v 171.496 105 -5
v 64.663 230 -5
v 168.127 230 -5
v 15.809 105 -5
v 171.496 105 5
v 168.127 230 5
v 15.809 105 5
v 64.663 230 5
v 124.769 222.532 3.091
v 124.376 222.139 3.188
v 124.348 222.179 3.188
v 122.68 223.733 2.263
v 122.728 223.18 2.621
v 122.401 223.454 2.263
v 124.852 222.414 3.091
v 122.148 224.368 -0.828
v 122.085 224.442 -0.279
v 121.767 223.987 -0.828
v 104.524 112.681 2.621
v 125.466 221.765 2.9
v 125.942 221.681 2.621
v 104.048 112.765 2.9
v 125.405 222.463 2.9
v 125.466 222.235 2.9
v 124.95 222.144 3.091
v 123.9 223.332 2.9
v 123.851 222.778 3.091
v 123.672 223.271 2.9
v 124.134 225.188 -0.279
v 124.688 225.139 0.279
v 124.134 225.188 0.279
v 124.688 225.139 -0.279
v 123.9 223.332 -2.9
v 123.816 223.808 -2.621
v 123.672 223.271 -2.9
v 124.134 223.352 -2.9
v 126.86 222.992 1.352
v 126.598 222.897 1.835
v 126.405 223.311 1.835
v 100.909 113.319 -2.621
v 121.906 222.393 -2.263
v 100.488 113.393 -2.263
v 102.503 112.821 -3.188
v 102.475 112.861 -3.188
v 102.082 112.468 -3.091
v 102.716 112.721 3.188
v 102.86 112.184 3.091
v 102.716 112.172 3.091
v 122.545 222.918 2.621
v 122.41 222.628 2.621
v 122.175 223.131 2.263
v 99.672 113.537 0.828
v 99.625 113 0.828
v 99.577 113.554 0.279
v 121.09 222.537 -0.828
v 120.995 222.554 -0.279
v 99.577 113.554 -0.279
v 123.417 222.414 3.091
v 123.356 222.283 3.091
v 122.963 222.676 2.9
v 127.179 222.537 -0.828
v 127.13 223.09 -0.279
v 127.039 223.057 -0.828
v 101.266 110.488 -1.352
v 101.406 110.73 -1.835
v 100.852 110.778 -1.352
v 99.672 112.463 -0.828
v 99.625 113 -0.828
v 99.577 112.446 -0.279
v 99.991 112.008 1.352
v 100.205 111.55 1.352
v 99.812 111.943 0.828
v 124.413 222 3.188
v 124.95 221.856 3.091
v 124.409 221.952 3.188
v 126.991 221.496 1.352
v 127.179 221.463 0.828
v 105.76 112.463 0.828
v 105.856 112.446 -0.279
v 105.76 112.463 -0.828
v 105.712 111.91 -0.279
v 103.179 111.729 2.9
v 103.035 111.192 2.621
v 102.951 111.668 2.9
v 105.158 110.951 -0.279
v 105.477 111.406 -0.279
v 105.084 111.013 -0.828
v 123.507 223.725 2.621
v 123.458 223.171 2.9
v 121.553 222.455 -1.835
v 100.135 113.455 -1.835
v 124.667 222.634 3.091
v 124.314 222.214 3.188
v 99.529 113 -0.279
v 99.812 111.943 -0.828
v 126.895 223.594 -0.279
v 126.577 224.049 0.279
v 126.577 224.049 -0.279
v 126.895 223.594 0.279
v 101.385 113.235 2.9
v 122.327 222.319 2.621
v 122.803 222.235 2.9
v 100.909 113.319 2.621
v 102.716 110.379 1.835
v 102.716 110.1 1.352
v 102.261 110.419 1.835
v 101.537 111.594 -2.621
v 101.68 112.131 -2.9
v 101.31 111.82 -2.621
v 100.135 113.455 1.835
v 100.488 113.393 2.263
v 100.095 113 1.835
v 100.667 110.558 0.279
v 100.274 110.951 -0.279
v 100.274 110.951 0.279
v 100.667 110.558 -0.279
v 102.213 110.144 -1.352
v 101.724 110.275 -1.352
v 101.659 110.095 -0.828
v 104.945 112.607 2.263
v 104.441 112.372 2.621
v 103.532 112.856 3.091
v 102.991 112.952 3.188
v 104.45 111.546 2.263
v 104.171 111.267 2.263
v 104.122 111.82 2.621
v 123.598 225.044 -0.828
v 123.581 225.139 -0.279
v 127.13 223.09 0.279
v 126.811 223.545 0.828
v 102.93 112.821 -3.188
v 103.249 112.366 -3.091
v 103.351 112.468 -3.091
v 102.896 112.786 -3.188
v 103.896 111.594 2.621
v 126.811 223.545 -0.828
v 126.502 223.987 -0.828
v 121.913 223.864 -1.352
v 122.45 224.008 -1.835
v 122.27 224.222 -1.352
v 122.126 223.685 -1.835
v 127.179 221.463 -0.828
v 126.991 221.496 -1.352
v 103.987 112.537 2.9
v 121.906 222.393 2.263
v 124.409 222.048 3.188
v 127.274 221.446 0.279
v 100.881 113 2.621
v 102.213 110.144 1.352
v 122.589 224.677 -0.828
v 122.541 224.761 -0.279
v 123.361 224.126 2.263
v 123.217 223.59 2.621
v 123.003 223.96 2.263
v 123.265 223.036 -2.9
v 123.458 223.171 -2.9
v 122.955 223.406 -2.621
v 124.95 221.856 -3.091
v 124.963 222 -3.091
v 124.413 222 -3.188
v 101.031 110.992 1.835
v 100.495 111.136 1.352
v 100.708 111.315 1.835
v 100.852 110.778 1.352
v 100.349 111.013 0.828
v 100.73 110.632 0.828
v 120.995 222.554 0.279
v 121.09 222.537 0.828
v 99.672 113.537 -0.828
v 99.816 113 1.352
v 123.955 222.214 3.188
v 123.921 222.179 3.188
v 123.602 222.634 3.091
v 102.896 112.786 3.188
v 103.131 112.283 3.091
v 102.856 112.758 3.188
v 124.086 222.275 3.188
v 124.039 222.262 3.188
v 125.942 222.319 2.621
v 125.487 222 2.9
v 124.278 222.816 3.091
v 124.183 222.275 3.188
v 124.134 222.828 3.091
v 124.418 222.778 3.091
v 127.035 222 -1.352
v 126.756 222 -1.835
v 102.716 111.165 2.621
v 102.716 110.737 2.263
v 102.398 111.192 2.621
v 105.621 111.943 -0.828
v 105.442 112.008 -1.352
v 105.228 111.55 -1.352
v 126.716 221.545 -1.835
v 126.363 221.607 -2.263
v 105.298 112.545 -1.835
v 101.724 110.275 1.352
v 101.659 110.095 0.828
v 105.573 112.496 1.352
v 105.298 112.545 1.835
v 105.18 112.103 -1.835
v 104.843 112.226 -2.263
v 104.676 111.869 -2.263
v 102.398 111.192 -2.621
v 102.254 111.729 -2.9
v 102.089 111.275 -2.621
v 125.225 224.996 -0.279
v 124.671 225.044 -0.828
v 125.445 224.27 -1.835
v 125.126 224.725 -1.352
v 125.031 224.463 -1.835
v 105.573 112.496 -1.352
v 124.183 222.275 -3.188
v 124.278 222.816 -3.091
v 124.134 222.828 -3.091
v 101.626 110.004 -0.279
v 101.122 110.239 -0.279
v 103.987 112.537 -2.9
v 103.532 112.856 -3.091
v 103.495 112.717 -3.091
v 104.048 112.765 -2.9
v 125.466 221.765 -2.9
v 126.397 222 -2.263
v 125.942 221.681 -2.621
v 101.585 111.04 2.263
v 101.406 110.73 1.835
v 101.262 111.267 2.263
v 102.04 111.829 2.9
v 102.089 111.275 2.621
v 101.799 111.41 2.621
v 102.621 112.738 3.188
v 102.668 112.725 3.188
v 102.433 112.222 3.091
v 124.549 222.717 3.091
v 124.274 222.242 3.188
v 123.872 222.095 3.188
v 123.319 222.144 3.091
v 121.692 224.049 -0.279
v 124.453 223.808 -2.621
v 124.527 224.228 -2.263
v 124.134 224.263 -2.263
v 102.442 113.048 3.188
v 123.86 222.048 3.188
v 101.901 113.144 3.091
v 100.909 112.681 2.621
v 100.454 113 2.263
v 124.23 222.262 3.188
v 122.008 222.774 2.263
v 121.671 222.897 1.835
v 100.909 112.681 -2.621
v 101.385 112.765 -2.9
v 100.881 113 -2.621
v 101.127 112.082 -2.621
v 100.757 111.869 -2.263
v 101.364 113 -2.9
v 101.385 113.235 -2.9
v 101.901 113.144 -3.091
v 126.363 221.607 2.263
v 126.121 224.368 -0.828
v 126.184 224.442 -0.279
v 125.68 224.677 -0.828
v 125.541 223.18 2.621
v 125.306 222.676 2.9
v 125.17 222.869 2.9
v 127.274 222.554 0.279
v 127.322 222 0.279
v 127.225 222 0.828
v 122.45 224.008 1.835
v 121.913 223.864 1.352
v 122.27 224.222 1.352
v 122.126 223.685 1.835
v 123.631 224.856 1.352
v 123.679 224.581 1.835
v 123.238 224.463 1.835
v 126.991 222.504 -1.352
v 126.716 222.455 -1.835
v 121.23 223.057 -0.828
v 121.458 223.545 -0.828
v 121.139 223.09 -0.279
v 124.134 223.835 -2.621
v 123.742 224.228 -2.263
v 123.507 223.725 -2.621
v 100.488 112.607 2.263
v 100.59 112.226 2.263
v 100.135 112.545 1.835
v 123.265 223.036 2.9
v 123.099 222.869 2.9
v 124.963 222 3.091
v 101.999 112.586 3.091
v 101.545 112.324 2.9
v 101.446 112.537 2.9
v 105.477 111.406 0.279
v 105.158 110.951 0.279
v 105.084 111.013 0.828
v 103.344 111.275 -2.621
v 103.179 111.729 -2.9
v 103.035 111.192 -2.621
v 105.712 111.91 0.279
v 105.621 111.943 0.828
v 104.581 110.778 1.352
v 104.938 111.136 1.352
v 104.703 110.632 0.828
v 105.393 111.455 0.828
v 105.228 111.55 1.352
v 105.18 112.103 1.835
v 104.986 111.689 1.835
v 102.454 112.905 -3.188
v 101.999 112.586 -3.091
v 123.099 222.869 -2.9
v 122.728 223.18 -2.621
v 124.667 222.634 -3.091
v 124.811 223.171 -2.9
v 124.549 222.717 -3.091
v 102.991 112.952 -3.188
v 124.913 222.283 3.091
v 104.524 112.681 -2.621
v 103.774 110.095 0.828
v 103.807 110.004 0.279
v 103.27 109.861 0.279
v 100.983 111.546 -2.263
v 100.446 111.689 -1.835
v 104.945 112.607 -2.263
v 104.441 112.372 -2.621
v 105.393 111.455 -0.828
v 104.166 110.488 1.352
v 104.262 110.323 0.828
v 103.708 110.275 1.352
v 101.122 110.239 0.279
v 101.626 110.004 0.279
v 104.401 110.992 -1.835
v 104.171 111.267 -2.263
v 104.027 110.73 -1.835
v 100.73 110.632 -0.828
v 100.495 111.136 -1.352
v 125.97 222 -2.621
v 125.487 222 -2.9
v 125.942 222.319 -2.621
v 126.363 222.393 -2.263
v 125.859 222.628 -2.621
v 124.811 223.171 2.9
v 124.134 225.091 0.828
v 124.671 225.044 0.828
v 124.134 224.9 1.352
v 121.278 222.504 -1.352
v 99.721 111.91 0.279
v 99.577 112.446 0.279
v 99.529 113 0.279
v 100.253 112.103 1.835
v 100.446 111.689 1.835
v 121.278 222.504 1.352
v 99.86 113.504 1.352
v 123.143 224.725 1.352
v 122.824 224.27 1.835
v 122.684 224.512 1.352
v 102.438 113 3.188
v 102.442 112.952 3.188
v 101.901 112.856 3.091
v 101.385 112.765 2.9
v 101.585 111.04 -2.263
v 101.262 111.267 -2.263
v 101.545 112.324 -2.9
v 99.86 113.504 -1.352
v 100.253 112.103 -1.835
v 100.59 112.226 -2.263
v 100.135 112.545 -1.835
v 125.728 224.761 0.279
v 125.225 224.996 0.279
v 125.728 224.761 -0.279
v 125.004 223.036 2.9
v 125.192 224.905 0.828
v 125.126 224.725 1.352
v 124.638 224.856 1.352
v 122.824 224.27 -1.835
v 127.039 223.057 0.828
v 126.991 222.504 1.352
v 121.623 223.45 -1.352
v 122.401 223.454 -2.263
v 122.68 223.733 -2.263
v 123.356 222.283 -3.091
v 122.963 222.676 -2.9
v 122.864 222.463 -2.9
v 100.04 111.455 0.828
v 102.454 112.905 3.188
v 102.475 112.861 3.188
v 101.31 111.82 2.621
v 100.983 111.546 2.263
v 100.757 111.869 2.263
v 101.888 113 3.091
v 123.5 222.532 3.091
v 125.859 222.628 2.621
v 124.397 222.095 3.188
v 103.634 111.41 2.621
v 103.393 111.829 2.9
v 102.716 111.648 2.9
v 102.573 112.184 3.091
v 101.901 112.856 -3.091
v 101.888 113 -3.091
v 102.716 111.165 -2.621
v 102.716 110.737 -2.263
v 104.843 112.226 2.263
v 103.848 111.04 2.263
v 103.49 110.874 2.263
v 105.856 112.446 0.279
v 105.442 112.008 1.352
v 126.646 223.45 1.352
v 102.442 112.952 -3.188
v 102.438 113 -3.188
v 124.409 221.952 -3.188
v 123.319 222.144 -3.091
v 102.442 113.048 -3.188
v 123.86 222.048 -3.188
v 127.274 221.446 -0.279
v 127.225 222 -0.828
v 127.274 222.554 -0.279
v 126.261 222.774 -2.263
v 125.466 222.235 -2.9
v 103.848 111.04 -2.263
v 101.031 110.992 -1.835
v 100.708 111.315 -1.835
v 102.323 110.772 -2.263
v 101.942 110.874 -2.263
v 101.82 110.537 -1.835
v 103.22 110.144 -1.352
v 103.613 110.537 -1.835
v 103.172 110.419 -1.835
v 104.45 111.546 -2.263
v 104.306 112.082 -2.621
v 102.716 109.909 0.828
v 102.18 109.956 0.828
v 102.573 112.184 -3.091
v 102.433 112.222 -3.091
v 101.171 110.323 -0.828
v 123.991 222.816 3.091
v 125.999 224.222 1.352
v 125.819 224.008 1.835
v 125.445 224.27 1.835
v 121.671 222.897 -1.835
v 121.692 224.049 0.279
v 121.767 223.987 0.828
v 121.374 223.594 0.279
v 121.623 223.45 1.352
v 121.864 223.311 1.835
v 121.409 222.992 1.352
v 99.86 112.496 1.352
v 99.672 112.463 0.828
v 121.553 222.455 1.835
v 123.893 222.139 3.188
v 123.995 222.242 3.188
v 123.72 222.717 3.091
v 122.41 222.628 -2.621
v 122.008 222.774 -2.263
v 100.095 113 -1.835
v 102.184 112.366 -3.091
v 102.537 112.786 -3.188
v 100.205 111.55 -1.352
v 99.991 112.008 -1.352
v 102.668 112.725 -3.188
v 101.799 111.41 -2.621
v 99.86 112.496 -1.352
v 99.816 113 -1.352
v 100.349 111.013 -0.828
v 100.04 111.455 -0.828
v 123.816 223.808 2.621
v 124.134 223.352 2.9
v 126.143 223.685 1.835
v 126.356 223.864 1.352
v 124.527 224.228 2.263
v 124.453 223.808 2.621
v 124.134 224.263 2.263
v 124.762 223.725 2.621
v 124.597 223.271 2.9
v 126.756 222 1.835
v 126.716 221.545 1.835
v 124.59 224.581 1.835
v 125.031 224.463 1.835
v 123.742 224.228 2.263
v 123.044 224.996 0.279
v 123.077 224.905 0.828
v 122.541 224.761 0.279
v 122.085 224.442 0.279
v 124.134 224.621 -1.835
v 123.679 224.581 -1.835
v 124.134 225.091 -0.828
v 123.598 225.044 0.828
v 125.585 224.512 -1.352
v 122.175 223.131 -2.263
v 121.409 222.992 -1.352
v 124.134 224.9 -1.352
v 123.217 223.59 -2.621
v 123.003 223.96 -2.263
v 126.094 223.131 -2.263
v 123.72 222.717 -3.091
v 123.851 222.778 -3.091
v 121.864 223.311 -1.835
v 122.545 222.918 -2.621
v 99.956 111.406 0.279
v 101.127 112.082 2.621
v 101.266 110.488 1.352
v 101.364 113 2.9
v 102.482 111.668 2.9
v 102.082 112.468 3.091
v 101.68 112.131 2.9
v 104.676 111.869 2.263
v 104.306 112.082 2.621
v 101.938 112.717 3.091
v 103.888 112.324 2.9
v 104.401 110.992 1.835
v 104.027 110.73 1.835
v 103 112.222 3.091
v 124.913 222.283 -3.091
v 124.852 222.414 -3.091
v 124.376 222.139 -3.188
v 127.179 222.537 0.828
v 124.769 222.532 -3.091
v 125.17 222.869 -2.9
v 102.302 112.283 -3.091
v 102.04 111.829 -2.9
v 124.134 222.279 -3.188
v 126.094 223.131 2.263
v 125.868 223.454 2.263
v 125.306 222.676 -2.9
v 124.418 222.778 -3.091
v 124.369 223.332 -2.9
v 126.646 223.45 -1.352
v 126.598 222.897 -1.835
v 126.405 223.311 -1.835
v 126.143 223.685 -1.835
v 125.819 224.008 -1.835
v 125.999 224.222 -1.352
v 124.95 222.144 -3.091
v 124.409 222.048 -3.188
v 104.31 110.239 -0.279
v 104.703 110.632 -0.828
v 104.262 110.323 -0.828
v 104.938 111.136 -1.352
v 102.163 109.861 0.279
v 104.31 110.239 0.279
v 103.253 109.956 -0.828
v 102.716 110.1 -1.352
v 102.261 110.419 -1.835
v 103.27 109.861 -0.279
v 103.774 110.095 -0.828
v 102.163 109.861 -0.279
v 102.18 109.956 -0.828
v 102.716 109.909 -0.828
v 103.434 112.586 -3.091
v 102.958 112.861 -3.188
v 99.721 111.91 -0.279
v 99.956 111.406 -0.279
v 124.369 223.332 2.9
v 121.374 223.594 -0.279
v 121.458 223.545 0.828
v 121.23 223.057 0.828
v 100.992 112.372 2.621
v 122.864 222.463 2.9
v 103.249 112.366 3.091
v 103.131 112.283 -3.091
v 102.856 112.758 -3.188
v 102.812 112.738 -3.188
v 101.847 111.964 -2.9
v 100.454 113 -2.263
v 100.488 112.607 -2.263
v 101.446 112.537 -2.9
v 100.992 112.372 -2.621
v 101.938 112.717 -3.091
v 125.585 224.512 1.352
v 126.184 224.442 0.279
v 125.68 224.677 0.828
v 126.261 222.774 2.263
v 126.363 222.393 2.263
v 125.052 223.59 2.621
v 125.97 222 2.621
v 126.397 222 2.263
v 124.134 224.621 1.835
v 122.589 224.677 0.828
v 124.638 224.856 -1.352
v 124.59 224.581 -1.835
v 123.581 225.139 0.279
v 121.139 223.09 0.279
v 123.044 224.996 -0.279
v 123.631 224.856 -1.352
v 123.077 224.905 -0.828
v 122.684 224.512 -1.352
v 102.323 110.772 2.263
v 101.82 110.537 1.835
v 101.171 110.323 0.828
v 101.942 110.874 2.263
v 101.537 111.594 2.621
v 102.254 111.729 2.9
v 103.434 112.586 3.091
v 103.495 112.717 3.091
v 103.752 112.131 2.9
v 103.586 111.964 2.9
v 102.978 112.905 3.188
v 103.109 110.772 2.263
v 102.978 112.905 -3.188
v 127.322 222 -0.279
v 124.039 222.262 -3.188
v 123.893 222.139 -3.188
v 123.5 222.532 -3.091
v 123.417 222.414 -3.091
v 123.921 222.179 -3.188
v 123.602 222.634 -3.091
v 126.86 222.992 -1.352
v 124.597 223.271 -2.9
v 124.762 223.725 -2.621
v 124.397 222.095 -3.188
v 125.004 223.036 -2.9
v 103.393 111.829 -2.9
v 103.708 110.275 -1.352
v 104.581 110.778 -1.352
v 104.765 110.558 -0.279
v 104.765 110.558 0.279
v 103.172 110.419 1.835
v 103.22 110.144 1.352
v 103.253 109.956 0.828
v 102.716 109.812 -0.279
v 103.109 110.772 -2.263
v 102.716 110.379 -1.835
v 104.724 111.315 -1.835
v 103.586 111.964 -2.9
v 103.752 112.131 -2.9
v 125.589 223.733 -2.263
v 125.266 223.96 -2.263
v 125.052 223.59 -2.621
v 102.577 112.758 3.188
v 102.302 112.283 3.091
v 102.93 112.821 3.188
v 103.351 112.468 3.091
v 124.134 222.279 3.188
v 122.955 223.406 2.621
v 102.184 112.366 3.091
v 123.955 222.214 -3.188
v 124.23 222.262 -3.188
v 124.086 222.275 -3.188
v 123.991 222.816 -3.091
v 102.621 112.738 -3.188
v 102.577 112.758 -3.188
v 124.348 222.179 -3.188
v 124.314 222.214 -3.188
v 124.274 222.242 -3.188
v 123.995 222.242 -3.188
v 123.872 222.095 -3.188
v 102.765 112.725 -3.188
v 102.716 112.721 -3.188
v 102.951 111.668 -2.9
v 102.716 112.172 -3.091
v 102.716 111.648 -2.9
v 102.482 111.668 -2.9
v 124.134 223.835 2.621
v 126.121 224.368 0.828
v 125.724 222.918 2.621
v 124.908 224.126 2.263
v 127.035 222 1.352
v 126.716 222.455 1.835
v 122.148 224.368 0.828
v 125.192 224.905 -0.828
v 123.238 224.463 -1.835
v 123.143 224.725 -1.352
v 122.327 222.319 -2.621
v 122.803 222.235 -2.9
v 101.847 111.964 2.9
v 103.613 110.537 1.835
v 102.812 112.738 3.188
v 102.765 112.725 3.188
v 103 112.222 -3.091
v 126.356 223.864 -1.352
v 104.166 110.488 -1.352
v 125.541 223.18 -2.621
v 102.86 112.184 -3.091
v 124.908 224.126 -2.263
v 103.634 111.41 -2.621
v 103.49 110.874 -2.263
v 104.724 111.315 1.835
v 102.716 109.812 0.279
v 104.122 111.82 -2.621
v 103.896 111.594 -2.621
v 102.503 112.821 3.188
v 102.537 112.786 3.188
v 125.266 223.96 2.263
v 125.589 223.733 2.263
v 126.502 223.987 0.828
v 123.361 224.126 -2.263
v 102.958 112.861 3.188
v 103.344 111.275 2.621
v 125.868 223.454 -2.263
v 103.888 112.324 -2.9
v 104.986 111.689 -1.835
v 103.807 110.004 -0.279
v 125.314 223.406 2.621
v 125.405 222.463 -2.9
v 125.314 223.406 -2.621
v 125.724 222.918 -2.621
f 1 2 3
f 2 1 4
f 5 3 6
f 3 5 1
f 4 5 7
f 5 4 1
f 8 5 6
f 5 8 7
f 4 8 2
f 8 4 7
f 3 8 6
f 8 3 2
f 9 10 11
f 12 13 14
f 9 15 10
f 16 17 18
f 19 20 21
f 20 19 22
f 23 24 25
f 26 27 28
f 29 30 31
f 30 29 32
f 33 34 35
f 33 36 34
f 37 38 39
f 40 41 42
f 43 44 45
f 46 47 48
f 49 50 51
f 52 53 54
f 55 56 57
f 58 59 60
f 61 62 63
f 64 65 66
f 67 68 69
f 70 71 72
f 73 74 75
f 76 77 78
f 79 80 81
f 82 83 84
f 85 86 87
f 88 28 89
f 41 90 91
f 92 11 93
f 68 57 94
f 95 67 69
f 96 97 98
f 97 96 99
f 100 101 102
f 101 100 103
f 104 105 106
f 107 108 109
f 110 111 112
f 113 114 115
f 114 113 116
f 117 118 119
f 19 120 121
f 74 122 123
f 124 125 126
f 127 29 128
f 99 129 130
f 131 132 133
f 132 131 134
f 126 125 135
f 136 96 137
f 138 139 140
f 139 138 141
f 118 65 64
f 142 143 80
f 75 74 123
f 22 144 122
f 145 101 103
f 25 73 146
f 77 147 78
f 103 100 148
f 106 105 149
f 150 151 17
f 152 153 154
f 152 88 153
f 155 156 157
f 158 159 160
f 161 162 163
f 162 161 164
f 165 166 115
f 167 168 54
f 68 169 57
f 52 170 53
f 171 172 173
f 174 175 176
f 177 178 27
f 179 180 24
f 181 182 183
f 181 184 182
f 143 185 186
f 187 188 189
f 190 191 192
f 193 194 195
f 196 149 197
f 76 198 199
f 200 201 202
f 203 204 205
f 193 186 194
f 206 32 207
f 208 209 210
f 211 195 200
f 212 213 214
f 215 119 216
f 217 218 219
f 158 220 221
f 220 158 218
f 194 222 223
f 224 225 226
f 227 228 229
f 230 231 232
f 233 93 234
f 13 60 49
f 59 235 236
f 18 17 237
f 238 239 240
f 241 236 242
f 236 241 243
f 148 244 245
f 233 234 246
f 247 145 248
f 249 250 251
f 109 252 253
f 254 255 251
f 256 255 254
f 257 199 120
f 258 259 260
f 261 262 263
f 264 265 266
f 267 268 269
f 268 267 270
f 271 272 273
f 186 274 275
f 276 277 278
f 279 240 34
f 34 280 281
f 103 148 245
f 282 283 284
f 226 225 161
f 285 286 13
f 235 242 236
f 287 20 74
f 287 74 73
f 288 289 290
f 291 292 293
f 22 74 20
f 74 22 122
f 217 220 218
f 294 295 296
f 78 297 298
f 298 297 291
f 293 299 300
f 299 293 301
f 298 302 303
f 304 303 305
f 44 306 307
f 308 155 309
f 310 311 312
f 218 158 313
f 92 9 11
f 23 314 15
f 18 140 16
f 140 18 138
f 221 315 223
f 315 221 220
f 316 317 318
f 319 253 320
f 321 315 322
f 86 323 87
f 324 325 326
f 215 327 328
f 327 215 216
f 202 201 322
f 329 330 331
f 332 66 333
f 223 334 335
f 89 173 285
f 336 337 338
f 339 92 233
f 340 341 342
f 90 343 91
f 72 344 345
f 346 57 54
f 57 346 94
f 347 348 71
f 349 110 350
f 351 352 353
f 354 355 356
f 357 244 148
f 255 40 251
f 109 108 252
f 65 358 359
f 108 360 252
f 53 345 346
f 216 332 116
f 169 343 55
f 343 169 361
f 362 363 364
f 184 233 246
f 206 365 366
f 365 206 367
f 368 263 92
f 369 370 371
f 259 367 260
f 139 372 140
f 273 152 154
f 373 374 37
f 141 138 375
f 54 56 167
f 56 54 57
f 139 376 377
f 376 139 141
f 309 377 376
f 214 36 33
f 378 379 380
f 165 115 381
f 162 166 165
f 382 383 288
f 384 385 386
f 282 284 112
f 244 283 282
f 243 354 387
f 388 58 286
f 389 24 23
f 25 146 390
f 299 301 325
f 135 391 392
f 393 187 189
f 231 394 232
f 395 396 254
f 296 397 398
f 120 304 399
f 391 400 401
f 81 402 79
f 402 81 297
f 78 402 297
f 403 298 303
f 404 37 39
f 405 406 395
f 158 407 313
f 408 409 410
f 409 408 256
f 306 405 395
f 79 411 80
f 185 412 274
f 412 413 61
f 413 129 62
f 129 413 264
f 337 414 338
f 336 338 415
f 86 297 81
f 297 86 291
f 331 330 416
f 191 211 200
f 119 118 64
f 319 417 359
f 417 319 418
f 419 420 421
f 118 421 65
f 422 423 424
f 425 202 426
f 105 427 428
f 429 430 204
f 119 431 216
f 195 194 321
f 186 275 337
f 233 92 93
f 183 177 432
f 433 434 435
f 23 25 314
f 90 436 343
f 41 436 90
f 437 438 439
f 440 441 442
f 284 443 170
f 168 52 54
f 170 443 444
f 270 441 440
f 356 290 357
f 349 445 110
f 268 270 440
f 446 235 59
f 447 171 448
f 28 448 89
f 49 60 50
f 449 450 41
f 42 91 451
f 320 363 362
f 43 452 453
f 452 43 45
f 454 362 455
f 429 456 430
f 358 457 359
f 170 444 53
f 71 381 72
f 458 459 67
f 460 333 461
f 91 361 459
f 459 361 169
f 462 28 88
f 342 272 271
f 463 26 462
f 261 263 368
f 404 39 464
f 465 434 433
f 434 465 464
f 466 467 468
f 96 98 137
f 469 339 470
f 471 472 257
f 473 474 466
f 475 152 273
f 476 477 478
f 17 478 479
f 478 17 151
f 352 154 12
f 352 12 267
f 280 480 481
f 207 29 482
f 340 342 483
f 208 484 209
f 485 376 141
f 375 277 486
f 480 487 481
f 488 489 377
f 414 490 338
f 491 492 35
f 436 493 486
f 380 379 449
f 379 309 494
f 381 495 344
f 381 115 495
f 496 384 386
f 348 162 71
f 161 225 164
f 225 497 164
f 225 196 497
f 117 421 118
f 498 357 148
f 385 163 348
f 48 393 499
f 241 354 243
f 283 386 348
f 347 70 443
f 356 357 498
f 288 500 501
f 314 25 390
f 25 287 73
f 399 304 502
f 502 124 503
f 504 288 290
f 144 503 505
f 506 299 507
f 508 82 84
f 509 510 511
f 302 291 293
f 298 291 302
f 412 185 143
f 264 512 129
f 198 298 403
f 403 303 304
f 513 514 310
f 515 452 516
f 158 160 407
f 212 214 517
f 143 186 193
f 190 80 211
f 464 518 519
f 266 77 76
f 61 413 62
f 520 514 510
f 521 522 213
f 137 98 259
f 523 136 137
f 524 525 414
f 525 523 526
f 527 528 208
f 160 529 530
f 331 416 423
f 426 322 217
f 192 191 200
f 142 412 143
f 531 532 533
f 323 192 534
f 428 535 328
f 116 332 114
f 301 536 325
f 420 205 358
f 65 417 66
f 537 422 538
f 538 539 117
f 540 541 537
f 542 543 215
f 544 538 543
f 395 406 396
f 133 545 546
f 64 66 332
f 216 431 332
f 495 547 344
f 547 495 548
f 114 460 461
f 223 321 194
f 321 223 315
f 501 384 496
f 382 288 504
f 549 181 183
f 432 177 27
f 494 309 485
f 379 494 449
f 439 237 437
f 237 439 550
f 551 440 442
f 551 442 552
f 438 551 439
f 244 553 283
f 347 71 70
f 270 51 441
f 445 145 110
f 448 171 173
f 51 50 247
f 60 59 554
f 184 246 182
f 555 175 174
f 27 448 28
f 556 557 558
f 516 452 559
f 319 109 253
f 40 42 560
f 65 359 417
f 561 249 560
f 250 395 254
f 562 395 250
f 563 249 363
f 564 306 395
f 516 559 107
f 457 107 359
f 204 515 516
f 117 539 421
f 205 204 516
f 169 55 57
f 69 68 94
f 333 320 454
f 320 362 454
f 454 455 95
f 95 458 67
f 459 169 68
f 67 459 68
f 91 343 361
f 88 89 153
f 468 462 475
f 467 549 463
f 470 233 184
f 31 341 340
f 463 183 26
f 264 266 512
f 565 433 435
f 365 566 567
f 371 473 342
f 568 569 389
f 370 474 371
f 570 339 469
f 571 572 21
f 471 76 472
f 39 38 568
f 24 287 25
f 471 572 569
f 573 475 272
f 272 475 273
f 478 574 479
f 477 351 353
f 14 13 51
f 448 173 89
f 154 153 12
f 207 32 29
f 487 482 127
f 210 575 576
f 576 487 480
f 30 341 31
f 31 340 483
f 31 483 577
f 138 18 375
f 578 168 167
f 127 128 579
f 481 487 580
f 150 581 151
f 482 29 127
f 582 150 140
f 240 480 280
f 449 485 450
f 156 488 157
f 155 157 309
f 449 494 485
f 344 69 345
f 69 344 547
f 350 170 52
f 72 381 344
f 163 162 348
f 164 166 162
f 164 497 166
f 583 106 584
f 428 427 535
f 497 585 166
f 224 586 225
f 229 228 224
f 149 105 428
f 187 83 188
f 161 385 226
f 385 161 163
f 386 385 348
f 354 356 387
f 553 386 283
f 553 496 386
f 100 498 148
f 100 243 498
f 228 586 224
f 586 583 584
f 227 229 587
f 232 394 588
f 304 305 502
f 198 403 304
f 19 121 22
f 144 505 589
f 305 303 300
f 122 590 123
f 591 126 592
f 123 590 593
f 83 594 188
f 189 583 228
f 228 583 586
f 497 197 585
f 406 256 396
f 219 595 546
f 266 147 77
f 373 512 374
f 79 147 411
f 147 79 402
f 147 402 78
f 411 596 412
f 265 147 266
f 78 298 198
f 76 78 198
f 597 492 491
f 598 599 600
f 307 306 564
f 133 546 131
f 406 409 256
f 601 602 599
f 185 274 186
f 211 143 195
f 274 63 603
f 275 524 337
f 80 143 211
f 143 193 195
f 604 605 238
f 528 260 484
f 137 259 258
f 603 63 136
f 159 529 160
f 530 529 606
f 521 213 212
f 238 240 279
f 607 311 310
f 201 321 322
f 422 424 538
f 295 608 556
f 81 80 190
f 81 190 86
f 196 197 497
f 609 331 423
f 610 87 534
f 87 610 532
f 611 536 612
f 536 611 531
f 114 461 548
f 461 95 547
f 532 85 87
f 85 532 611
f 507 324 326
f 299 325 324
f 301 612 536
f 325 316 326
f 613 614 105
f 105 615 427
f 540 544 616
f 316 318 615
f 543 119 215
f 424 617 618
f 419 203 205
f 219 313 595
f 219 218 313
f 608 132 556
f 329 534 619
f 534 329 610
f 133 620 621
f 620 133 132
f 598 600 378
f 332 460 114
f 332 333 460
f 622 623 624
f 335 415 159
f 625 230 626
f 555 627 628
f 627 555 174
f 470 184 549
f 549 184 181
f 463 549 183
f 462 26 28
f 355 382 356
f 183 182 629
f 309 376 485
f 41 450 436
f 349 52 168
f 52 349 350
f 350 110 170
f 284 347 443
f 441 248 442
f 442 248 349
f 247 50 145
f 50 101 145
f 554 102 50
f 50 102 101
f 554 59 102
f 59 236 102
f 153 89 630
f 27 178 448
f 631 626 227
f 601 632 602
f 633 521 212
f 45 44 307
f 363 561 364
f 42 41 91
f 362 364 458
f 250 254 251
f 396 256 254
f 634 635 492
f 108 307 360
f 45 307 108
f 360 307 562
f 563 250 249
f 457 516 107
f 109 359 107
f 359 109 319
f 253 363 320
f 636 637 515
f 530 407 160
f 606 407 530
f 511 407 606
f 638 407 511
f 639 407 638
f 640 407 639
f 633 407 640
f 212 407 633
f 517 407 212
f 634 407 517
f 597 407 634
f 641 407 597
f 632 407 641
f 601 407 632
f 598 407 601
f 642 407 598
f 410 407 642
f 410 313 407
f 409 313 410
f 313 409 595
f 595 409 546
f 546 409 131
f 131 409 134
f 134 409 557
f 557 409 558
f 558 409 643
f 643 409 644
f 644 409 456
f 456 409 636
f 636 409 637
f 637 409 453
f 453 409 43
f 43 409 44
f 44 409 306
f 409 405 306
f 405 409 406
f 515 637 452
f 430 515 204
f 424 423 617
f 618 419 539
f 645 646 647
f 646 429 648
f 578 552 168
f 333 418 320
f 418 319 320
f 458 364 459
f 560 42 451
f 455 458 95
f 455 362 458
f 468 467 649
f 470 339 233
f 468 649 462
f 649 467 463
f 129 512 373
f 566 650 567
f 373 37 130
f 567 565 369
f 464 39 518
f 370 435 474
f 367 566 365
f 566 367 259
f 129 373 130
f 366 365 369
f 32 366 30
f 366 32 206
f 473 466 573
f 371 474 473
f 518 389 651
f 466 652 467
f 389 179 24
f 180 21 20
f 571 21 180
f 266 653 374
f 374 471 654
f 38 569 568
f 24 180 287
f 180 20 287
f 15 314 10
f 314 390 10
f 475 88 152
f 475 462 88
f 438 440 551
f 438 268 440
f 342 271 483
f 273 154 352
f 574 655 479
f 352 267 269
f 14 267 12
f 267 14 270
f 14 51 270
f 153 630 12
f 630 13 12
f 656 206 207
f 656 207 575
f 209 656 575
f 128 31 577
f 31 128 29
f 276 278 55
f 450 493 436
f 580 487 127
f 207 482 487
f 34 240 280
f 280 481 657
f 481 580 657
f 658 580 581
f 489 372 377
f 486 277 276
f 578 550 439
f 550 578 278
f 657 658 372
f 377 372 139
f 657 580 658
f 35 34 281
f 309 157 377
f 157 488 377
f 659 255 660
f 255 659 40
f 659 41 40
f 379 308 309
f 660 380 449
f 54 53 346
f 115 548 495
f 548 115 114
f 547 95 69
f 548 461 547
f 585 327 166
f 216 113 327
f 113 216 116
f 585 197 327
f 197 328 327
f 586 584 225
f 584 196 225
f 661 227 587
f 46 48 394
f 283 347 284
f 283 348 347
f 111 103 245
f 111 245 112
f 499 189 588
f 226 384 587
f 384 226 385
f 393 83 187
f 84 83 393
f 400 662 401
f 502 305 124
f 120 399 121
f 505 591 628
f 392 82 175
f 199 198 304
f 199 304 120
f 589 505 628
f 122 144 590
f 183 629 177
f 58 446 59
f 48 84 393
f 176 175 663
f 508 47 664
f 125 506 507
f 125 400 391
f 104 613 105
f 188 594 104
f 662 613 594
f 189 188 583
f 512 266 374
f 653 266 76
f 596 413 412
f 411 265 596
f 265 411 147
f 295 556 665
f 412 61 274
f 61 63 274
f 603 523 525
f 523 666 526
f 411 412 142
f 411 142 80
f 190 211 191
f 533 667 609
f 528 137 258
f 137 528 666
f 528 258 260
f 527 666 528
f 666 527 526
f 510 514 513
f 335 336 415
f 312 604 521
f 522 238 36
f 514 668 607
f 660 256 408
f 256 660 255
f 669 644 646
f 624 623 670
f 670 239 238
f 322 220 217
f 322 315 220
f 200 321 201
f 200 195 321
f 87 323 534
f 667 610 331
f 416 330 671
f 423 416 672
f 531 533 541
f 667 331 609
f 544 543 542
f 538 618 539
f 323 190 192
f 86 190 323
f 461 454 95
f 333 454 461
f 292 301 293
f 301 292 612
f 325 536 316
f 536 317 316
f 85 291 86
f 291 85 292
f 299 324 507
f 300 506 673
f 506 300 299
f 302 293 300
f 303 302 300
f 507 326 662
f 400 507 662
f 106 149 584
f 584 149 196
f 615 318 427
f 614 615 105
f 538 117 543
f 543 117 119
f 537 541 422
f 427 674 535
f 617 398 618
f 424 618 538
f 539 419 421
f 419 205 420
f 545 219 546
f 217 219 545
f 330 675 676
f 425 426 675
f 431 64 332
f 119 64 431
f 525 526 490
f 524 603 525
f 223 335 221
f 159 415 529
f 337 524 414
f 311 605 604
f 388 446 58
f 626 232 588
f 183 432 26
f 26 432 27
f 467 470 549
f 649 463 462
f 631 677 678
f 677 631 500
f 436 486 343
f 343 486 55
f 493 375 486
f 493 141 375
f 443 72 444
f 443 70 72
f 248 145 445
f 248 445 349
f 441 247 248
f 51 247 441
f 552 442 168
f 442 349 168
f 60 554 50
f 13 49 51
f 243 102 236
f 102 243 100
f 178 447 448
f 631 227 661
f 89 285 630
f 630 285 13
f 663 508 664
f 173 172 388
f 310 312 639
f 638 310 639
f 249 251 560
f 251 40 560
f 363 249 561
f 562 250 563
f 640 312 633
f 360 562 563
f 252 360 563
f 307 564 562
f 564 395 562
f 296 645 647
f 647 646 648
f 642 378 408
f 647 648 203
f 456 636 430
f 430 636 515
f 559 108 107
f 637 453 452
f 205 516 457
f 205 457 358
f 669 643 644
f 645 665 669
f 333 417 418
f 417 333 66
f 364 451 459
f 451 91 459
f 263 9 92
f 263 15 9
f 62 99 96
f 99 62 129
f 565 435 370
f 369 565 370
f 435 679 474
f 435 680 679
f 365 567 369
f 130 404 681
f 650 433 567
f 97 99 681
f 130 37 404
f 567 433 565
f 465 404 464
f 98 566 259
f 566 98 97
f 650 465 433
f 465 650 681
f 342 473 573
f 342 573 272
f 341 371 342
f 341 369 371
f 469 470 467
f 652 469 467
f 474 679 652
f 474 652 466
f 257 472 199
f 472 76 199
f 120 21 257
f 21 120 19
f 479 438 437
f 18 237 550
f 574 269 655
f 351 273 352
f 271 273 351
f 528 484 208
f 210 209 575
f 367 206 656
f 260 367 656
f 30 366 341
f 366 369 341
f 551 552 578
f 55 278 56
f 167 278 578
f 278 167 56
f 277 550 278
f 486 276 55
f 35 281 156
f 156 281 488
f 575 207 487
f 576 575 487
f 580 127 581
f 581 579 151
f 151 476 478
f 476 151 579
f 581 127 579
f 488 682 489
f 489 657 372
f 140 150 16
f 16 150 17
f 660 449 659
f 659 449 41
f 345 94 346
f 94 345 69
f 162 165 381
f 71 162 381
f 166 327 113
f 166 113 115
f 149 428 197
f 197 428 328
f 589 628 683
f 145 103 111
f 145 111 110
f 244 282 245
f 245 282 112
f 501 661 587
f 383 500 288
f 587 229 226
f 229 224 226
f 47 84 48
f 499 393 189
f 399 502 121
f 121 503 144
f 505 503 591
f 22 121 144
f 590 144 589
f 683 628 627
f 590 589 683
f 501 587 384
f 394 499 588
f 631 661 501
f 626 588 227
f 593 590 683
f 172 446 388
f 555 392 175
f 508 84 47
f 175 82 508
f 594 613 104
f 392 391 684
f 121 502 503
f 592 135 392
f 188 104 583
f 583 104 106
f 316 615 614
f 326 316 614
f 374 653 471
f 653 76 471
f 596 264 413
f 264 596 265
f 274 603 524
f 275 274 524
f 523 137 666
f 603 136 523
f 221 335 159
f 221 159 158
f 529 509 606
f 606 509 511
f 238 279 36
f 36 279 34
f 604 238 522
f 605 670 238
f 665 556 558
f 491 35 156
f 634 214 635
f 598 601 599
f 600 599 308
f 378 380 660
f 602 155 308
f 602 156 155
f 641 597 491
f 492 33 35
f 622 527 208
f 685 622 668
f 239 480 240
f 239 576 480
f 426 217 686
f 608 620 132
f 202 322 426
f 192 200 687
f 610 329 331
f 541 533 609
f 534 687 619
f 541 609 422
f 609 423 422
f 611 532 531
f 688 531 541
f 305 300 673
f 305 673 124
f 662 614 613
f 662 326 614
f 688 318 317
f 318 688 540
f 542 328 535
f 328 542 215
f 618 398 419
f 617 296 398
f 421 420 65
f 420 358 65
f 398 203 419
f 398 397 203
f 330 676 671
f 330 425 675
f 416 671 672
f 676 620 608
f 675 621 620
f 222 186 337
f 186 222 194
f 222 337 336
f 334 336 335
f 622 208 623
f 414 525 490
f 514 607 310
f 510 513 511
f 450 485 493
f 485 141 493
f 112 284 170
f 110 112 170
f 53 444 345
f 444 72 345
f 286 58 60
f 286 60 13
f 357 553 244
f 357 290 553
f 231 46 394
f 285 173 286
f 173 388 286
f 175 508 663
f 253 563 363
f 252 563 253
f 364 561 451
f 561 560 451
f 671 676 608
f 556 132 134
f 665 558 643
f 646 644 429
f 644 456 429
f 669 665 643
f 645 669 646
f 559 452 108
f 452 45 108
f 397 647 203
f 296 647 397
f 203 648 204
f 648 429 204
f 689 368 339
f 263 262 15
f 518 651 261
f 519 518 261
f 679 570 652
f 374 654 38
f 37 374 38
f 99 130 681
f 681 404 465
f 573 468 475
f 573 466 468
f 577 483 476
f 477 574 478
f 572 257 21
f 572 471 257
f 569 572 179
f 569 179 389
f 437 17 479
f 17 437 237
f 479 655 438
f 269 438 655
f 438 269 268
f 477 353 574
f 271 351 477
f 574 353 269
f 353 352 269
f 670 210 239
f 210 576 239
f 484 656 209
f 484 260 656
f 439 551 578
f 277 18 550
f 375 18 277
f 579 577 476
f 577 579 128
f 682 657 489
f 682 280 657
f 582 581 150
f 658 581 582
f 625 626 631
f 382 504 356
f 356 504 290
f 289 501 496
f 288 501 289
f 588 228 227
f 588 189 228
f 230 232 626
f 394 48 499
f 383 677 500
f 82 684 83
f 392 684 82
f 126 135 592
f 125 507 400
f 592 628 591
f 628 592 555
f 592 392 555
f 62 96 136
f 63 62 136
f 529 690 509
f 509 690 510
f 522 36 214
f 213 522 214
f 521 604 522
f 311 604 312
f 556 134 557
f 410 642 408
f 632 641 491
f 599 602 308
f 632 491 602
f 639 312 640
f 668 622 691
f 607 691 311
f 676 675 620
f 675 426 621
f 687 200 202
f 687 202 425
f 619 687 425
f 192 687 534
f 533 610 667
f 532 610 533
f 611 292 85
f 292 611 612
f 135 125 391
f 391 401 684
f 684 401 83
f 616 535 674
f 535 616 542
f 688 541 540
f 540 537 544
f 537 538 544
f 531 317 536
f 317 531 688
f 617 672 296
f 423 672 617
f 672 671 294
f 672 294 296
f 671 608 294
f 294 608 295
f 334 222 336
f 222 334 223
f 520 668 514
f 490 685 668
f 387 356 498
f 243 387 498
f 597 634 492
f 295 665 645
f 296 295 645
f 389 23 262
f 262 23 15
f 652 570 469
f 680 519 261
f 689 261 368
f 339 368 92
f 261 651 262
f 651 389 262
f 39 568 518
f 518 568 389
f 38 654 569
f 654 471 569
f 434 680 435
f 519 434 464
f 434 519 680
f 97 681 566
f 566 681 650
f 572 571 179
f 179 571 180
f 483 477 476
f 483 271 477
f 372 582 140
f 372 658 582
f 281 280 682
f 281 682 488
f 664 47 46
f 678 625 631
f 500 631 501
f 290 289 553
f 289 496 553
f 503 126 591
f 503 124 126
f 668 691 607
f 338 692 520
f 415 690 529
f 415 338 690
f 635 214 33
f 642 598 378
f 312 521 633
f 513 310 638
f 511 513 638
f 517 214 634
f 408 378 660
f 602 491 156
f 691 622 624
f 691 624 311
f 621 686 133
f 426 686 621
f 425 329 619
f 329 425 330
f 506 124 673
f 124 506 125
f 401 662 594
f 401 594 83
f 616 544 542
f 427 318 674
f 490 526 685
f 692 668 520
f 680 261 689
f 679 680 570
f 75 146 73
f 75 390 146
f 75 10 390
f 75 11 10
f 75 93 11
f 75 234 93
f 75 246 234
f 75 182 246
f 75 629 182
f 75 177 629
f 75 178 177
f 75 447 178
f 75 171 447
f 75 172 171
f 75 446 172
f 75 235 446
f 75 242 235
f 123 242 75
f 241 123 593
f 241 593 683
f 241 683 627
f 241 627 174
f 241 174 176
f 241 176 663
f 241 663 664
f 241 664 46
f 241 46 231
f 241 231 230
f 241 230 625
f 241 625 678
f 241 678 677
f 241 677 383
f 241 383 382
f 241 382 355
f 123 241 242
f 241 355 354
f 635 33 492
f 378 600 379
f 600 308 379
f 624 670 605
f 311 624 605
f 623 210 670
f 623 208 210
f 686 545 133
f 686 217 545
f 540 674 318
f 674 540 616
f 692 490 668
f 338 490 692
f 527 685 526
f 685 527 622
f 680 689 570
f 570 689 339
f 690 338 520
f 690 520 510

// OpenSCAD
$fn=64;
module raw(){linear_extrude(height=10,center=true) polygon(points=[[15.80863,105.00000],[171.49596,105.00000],[168.12668,230.00000],[64.66307,230.00000]]);}
module spar(){hull(){translate([102.7164,113.0000,0]) sphere(d=6.4,$fn=36); translate([124.1345,222.0000,0]) sphere(d=6.4,$fn=36);}}
module wing(){difference(){raw(); spar(); }}
wing();
